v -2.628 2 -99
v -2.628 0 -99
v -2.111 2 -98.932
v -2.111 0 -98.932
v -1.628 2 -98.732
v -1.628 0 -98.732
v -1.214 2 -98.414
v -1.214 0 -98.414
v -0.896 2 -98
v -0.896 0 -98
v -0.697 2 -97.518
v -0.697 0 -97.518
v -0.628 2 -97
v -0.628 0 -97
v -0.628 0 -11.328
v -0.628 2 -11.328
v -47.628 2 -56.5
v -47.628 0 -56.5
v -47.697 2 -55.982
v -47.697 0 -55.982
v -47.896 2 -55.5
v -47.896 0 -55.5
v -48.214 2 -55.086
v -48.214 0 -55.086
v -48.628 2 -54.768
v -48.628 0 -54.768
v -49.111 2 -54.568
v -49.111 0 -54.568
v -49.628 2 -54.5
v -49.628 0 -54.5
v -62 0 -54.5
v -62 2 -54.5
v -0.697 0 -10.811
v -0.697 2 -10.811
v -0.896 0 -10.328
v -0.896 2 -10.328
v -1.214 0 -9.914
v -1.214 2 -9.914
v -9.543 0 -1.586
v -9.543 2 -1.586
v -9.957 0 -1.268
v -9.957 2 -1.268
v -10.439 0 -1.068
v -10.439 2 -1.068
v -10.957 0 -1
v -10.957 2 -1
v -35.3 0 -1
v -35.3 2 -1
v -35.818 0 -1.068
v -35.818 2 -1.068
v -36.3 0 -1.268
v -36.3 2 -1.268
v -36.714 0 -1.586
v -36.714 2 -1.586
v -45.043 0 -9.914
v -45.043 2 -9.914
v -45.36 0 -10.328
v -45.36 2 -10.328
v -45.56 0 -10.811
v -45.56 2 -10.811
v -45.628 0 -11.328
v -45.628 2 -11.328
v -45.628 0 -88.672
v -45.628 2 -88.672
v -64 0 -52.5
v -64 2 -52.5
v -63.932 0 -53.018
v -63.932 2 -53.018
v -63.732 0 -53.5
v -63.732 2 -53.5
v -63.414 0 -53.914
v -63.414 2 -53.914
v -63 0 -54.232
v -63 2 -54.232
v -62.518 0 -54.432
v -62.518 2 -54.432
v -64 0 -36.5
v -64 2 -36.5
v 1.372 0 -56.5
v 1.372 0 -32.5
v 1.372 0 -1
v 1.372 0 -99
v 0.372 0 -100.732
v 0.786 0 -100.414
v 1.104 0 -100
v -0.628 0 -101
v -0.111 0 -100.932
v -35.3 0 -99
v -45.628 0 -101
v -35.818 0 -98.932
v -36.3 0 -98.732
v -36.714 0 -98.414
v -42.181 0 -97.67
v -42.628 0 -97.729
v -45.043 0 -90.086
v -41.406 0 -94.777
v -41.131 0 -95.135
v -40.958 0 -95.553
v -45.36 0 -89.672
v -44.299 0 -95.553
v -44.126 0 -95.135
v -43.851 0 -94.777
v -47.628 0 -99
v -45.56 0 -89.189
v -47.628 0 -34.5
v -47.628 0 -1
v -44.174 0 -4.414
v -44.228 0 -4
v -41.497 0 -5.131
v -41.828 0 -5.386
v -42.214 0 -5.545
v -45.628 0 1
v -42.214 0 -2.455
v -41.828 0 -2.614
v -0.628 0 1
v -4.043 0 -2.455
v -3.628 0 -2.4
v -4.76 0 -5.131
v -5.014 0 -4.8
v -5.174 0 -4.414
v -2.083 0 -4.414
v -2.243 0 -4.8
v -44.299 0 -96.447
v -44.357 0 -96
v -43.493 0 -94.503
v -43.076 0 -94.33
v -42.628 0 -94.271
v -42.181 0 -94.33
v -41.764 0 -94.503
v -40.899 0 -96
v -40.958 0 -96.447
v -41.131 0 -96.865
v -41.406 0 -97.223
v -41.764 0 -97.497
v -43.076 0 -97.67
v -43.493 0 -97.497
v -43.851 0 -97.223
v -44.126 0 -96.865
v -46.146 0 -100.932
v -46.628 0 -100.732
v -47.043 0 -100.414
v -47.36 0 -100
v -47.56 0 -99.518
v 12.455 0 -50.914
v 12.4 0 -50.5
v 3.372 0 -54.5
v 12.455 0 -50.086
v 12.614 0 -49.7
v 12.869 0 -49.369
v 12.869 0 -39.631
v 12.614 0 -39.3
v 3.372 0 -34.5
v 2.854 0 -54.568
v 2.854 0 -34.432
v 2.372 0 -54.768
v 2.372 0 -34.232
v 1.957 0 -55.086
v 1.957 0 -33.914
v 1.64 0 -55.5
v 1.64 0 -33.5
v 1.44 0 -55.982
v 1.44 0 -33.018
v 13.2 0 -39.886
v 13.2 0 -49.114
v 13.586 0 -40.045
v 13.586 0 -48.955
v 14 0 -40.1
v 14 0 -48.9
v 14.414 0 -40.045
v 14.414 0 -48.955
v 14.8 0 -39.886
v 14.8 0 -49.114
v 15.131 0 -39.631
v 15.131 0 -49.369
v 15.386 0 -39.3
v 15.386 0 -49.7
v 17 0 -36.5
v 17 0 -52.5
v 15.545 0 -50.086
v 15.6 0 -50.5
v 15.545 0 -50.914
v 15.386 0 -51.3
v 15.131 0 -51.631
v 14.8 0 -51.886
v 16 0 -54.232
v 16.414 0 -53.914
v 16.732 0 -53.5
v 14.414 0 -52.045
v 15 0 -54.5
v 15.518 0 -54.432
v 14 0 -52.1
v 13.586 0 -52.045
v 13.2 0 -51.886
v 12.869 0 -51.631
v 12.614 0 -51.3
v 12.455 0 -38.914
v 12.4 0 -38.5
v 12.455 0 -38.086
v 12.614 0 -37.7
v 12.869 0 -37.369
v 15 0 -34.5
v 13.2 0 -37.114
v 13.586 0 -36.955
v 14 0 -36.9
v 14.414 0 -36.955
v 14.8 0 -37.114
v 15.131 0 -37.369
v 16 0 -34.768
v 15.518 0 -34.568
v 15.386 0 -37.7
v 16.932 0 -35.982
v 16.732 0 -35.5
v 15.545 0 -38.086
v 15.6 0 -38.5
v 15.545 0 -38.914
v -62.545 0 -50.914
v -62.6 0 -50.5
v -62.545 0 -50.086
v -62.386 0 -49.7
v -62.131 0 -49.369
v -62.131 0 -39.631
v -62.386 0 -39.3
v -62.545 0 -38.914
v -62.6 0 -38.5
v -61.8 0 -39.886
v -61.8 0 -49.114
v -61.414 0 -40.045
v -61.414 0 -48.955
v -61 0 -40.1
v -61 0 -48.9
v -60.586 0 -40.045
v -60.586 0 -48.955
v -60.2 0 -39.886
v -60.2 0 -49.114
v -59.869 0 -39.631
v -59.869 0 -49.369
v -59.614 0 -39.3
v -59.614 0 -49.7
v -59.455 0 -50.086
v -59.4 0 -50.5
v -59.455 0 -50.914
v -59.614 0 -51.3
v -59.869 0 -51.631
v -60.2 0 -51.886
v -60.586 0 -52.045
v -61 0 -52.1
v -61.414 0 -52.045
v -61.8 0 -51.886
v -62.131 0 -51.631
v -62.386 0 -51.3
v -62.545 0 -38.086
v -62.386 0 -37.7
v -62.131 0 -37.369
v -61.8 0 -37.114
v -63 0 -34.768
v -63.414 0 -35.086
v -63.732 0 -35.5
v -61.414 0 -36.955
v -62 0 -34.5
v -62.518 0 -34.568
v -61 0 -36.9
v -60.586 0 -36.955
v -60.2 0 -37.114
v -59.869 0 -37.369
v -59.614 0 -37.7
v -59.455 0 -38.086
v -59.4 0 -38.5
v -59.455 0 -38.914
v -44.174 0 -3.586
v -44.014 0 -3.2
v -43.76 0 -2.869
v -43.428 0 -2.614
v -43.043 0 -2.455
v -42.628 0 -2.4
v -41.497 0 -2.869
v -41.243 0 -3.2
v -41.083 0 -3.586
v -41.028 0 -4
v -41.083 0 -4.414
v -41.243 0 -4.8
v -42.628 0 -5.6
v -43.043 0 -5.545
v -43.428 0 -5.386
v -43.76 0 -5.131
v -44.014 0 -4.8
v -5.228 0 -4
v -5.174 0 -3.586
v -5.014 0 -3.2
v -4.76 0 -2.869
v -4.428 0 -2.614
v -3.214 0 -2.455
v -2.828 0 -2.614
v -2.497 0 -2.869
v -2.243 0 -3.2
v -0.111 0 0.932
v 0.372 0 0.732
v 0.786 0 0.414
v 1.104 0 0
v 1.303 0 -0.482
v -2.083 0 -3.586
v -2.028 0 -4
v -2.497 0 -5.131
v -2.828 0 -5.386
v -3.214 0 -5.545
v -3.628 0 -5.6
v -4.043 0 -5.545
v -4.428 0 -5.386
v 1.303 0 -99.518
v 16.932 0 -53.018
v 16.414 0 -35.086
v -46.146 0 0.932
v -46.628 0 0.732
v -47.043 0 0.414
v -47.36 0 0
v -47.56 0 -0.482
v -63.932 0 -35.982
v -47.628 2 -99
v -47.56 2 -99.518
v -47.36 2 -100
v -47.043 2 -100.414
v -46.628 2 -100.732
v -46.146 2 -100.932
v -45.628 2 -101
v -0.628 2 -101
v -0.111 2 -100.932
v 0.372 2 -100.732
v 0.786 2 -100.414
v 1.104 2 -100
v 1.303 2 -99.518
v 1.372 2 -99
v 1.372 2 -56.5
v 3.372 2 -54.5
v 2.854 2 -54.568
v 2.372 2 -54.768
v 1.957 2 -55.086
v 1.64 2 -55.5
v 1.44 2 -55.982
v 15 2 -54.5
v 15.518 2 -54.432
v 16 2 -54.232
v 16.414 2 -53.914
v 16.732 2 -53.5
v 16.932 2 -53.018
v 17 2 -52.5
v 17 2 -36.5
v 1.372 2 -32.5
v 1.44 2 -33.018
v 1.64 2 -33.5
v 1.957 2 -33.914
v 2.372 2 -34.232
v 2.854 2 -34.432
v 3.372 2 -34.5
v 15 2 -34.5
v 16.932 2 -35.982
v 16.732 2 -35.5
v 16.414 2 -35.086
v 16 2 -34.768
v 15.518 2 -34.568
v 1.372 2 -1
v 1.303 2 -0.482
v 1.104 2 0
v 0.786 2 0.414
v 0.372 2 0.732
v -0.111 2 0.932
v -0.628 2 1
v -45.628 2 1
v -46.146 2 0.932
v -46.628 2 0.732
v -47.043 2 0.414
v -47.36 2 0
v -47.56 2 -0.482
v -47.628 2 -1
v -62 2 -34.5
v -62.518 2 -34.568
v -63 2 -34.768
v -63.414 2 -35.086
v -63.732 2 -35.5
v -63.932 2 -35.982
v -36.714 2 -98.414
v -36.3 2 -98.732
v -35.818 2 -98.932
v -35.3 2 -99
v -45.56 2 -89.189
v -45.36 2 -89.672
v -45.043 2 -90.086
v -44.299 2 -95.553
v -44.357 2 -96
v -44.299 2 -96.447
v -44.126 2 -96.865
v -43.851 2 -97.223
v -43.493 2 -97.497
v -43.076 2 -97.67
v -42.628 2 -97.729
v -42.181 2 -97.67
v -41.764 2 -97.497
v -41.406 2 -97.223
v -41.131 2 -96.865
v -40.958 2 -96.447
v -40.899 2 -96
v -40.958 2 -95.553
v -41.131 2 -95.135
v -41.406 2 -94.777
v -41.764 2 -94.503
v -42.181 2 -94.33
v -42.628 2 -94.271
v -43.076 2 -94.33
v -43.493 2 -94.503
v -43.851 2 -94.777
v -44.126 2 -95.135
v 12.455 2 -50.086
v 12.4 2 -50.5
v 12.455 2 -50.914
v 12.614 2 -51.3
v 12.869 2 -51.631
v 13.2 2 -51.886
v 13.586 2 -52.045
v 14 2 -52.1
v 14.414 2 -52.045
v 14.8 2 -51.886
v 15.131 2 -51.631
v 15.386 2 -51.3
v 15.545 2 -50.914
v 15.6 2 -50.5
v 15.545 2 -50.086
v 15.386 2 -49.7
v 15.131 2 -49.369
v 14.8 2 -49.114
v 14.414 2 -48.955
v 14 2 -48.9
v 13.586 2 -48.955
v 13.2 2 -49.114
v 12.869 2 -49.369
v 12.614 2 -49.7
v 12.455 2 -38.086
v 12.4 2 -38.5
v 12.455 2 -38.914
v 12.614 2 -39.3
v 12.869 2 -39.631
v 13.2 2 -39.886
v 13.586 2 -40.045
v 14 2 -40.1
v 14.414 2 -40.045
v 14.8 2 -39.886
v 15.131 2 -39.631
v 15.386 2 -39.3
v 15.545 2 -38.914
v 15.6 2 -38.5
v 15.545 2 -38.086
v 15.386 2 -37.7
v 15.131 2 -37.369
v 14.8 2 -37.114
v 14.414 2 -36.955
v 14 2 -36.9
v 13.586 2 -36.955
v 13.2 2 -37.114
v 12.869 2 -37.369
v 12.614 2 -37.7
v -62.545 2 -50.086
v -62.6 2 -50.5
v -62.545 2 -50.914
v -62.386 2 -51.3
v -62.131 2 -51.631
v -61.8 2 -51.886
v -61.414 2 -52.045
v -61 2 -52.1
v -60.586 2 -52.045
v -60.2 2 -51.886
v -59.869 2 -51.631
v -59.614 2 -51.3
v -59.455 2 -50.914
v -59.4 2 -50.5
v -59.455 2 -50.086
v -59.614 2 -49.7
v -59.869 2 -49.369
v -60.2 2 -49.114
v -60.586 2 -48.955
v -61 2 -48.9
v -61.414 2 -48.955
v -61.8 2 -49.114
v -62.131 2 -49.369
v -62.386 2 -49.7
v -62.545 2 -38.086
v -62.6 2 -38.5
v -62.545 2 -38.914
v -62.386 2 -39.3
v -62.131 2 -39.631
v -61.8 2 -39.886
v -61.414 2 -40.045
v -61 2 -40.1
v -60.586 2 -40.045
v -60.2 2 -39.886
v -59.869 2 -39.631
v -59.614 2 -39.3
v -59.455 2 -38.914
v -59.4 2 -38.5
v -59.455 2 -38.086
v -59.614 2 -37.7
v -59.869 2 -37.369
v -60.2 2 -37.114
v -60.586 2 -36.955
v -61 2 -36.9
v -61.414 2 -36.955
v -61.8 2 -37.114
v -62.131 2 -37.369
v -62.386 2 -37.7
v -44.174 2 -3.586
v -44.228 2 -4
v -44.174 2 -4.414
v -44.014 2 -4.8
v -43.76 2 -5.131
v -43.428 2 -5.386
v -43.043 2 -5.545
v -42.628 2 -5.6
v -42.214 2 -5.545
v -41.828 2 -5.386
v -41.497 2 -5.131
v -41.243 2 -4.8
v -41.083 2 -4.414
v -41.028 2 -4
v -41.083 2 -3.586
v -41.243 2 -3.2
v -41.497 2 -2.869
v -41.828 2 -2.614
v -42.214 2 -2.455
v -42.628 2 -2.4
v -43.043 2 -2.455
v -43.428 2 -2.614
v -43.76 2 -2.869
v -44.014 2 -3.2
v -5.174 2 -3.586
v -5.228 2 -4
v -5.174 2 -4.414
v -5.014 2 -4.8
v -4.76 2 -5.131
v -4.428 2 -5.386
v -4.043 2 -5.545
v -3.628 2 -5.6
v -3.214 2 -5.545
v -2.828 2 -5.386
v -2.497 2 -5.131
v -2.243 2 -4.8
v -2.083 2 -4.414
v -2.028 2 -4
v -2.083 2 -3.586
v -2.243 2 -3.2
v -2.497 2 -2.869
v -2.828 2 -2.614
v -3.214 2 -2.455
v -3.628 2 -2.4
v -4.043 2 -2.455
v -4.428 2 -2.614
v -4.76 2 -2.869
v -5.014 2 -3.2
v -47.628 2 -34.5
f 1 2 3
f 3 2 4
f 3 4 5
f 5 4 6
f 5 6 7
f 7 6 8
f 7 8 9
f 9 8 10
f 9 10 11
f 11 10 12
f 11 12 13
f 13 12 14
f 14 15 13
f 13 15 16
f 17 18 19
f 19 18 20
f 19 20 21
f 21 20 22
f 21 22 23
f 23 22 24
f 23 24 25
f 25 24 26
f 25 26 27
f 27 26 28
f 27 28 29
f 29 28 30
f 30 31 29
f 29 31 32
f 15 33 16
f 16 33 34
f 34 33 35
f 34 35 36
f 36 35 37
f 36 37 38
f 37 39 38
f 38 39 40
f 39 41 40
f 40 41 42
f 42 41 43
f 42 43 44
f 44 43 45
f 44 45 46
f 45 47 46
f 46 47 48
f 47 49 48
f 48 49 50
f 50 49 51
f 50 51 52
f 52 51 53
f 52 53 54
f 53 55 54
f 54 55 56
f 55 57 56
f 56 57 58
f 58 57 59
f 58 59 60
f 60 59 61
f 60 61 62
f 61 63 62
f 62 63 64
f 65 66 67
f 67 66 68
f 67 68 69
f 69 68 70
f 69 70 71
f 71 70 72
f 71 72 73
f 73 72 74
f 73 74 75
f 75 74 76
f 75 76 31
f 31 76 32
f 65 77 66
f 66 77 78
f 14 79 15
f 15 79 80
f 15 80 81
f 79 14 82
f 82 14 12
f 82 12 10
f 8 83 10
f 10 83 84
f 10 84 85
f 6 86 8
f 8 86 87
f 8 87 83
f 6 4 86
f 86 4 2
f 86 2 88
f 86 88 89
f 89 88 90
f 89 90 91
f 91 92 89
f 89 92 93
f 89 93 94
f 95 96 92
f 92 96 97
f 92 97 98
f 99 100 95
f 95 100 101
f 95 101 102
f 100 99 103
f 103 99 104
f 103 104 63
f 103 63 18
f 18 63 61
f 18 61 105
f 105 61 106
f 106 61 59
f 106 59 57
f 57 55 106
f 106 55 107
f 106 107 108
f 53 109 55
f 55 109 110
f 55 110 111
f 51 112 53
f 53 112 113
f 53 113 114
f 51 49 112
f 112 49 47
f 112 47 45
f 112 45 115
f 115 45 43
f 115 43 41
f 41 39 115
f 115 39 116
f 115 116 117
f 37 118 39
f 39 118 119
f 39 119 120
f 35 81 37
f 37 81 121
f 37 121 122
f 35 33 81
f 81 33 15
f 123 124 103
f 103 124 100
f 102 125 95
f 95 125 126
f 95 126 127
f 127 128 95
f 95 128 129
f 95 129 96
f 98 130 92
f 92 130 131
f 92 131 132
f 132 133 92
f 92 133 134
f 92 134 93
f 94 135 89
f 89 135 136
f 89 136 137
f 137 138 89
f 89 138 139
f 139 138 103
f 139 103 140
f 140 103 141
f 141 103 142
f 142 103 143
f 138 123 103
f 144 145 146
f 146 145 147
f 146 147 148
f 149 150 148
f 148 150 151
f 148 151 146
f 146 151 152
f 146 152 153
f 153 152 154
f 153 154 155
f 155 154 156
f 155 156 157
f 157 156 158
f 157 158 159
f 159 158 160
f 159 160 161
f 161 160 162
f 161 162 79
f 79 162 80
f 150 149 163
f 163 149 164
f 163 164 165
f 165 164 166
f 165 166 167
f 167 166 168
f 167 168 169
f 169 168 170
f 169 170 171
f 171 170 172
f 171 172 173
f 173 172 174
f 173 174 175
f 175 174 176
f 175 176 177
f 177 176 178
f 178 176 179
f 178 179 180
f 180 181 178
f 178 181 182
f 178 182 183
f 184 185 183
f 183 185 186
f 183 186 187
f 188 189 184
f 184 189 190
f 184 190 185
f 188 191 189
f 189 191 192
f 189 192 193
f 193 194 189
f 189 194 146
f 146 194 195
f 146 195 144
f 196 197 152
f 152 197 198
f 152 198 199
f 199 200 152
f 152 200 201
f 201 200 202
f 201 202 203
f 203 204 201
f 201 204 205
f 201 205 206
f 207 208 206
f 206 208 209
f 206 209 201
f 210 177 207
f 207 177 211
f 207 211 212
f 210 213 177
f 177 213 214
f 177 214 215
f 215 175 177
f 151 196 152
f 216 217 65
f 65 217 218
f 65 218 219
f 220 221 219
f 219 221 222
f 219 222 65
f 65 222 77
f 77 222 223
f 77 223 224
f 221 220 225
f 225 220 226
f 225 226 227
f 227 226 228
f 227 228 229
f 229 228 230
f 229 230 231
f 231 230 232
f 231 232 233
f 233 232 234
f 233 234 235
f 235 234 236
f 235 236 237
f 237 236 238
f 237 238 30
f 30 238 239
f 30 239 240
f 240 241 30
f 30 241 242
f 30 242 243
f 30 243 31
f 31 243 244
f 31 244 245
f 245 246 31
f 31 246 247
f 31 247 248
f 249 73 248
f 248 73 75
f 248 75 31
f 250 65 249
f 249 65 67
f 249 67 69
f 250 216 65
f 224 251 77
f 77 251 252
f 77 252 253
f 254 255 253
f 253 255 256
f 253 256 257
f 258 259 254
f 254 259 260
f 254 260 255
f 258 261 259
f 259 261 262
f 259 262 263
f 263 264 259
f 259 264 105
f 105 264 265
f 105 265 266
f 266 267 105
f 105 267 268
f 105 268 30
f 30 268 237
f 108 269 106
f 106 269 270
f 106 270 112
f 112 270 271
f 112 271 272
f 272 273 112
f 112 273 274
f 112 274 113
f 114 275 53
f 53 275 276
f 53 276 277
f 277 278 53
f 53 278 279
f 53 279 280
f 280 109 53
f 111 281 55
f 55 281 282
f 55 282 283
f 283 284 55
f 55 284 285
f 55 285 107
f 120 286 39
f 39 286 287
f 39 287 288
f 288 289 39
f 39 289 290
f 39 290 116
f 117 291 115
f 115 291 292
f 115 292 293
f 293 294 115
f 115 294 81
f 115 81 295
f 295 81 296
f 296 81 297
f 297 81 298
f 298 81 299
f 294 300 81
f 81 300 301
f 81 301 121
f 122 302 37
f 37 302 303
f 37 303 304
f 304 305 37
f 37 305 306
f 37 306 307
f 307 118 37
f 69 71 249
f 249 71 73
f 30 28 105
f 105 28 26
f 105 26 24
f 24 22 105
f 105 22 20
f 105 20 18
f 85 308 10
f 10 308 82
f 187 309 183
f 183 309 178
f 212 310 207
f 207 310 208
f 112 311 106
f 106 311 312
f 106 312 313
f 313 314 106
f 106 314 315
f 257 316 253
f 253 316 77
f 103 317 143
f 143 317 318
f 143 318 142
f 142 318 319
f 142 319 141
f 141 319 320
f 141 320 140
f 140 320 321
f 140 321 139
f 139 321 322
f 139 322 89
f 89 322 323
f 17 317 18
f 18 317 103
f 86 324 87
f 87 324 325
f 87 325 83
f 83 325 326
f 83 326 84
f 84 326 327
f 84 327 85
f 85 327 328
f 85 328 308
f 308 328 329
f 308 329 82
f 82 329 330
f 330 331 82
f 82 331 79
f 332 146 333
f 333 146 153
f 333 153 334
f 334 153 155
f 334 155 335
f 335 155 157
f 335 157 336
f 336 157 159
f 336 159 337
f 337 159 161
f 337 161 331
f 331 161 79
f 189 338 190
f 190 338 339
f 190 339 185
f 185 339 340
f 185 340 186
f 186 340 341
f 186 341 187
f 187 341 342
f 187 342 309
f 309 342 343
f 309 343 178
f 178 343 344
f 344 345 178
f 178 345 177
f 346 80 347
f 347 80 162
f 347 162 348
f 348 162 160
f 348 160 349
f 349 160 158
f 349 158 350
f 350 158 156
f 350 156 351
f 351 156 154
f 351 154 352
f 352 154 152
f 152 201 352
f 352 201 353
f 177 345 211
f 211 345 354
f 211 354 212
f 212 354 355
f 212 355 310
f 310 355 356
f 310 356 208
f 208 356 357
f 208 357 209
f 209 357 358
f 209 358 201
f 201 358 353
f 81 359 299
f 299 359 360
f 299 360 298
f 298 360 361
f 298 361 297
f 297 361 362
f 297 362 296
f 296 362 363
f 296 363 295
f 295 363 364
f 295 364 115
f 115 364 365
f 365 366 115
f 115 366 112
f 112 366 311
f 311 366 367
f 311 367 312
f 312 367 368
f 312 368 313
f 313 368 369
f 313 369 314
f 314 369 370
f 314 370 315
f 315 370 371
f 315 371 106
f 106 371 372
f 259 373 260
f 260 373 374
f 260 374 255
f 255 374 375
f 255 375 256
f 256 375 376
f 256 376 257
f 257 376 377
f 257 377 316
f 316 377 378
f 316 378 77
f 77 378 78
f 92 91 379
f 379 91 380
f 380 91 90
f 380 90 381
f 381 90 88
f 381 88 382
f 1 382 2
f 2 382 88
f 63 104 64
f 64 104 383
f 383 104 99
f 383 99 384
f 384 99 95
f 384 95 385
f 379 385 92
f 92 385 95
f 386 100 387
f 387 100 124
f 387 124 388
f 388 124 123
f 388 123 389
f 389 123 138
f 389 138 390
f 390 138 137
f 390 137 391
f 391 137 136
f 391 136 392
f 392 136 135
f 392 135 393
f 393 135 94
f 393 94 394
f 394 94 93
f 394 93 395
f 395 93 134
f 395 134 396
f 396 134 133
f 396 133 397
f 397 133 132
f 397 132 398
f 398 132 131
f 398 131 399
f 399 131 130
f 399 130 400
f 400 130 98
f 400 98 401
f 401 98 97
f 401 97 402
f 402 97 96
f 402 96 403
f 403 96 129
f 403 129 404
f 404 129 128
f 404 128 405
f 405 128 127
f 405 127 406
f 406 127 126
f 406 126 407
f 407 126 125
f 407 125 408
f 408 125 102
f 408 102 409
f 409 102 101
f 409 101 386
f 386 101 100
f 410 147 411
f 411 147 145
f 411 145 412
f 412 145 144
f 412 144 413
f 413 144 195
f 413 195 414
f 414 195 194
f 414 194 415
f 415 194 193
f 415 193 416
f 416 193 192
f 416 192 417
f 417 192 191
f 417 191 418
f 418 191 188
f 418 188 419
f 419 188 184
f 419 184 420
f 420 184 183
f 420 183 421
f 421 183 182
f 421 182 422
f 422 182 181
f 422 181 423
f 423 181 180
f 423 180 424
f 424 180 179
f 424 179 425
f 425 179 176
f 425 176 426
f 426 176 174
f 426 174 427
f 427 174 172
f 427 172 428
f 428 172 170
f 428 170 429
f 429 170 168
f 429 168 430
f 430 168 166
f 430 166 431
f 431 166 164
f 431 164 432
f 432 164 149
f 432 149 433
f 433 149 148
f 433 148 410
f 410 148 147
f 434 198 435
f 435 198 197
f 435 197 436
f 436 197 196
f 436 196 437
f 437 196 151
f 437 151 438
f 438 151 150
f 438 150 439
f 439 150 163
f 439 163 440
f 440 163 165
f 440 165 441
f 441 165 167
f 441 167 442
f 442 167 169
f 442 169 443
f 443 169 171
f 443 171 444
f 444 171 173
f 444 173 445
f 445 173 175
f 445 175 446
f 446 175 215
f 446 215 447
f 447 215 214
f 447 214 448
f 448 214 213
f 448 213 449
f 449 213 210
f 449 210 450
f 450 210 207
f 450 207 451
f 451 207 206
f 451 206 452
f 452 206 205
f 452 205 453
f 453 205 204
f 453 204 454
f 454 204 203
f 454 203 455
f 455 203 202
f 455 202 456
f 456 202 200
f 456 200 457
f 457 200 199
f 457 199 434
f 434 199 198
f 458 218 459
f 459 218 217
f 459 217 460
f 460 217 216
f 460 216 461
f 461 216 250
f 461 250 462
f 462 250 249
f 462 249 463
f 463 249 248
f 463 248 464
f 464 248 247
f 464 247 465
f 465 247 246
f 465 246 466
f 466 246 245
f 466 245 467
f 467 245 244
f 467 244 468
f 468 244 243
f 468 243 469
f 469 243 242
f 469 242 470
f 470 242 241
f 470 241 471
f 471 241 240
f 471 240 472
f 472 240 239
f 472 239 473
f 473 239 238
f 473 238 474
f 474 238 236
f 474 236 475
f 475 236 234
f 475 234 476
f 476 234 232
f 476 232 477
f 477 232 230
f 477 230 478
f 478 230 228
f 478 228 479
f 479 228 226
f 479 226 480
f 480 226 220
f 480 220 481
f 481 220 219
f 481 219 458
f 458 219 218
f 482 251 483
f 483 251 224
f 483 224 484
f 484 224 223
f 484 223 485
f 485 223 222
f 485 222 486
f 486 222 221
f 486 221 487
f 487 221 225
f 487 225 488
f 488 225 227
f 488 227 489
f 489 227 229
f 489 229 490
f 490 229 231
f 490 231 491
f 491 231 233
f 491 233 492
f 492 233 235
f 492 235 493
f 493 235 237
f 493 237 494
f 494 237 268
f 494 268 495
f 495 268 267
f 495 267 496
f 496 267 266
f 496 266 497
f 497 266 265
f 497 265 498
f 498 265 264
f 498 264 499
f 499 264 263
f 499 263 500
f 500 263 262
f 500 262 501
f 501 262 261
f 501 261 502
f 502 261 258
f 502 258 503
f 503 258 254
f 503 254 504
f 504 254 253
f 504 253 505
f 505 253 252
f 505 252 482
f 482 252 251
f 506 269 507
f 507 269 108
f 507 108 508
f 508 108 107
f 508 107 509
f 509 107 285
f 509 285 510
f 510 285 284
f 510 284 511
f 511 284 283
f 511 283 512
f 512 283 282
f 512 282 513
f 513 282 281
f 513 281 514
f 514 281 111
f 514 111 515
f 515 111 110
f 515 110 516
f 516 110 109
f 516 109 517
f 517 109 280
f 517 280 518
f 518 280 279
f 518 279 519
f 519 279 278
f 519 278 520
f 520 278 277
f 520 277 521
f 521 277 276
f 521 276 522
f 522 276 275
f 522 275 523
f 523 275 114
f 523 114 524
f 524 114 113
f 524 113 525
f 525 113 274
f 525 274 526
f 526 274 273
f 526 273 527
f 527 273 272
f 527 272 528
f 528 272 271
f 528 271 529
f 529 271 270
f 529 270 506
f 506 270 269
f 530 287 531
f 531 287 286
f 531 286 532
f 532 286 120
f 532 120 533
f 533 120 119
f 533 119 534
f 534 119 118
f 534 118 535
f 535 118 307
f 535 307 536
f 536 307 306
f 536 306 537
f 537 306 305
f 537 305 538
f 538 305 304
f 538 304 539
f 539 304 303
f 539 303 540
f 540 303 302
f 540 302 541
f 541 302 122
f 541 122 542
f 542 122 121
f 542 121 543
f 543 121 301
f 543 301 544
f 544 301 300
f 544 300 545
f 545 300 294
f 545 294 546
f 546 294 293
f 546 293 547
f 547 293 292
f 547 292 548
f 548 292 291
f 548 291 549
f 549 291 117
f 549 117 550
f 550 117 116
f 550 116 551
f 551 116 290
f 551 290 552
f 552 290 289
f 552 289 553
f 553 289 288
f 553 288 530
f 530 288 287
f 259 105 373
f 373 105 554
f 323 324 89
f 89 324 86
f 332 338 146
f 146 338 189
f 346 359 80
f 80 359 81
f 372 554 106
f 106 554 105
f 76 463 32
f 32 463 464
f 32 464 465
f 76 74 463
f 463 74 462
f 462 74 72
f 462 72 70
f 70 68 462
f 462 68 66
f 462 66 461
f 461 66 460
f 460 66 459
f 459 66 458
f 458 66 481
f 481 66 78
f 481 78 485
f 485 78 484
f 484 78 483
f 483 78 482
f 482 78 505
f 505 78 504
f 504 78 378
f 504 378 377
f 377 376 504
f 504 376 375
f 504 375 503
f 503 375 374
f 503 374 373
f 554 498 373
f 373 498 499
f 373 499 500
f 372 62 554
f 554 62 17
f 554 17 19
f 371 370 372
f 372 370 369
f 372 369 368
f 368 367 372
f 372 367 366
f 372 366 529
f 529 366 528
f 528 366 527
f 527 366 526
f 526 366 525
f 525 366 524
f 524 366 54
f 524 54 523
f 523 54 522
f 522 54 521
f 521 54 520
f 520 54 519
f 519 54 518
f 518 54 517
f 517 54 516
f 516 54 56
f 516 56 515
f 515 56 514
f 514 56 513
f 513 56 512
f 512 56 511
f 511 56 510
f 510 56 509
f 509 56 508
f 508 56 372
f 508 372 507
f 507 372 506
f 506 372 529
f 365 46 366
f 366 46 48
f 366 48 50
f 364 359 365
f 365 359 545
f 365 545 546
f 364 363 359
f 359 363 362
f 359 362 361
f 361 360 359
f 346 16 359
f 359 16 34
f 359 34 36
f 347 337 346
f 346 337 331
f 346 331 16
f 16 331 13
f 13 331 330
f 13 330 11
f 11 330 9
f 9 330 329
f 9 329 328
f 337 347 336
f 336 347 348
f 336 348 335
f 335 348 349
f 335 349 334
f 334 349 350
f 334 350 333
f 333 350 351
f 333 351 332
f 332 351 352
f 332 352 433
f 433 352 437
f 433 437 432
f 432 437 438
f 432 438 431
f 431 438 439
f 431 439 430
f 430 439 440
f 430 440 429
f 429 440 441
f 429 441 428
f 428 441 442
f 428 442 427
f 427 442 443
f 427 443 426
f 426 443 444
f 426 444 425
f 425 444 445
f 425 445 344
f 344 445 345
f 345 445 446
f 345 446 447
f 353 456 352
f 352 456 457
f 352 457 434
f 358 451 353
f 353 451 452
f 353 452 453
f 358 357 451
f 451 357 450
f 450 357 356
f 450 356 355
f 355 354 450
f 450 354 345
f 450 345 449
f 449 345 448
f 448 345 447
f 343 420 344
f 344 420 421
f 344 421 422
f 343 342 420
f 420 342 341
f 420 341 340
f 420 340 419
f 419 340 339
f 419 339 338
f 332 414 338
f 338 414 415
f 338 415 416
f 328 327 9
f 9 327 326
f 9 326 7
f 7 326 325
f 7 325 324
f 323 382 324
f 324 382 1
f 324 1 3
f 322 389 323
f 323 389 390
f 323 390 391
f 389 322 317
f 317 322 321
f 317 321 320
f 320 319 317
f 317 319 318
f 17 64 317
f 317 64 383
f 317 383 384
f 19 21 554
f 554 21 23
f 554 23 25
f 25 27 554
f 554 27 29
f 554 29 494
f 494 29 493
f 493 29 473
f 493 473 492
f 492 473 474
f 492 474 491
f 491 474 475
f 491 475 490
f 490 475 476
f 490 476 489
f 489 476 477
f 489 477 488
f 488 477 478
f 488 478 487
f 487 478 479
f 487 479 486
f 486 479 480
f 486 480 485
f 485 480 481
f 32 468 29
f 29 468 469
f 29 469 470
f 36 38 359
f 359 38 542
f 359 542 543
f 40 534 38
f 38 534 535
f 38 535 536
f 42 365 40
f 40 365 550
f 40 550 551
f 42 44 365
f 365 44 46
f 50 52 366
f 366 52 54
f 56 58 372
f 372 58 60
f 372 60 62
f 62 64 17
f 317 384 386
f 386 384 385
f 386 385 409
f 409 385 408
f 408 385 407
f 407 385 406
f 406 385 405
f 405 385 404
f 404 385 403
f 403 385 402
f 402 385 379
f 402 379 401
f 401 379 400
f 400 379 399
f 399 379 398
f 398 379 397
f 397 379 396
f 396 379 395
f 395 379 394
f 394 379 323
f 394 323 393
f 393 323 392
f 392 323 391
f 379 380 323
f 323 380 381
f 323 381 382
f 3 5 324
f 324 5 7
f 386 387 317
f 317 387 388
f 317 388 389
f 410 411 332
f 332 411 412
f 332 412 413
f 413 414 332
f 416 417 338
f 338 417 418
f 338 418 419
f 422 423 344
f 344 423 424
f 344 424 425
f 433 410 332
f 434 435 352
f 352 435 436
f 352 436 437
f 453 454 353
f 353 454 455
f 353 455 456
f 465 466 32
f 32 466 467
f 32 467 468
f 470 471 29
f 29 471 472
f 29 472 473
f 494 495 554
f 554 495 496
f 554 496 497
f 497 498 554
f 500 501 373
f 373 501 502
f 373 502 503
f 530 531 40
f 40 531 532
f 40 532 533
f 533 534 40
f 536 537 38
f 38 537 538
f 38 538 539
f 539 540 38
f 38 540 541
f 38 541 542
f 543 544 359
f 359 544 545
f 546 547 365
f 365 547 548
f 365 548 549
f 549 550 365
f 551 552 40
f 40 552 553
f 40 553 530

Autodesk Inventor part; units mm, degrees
ref_plane "YZ Plane" through (0, 0, 0) normal (1, 0, 0) x (0, 1, 0)
ref_plane "XZ Plane" through (0, 0, 0) normal (0, 1, 0) x (-1, 0, 0)
ref_plane "XY Plane" through (0, 0, 0) normal (0, 0, 1) x (1, 0, 0)
sketch "Sketch1" plane through (0, 0, 0) normal (0, 1, 0) x (-1, 0, 0)
  line L0 (-0.3716, 0) -> (46.6284, 0) construction
  line L1 (46.6284, 0) -> (46.6284, -99) construction
  line L2 (46.6284, -100) -> (-0.3716, -100) construction
  line L3 (-0.3716, -100) -> (-0.3716, -1) construction
  circle A0 centre (3.6284, -4) radius 1.6 construction
  circle A1 centre (42.6284, -4) radius 1.6 construction
  circle A2 centre (42.6284, -96) radius 1.729 construction
  line L4 (23.1284, 0) -> (23.1284, -100) construction
  line L5 (23.1284, -13) -> (18.1284, -13) construction
  line L6 (18.1284, -13) -> (0.1284, -13) construction
  line L7 (23.1284, -13) -> (46.1284, -13) construction
  line L8 (45.6284, -10.5) -> (45.6284, -89.5)
  line L9 (10.1284, -1) -> (36.1284, -1)
  line L10 (0.6284, -99) -> (36.1284, -99)
  line L11 (0.6284, -10.5) -> (0.6284, -99)
  line L12 (36.9206, -1) -> (49.2353, -1) construction
  line L13 (45.6284, -1) -> (36.1284, -1) construction
  line L14 (36.1284, -1) -> (45.6284, -10.5)
  line L15 (36.1284, -99) -> (45.6284, -89.5)
  line L16 (36.1284, -99) -> (49.5635, -99) construction
  line L17 (0.6284, -1) -> (10.1284, -1) construction
  line L18 (10.1284, -1) -> (0.6284, -10.5)
  circle A3 centre (3.6284, -4) radius 1.6
  circle A4 centre (42.6284, -4) radius 1.6
  circle A5 centre (42.6284, -96) radius 1.729
  circle A6 centre (61, -38.5) radius 1.6
  circle A7 centre (61, -50.5) radius 1.6
  line L19 (47.6284, -34.5) -> (64, -34.5)
  line L20 (64, -34.5) -> (64, -54.5)
  line L21 (64, -54.5) -> (47.6284, -54.5)
  circle A8 centre (-14, -38.5) radius 1.6
  circle A9 centre (-14, -50.5) radius 1.6
  line L22 (-1.3716, -34.5) -> (-17, -34.5)
  line L23 (-17, -34.5) -> (-17, -54.5)
  line L24 (-17, -54.5) -> (-1.3716, -54.5)
  line L25 (47.6284, -101) -> (47.6284, -54.5)
  line L26 (47.6284, -34.5) -> (47.6284, 1)
  line L27 (-1.3716, -101) -> (-1.3716, -54.5)
  line L28 (-1.3716, -34.5) -> (-1.3716, 1)
  line L29 (47.6284, 1) -> (-1.3716, 1)
  line L30 (47.6284, -101) -> (-1.3716, -101)
  dimension "d0" = 47
  dimension "d1" = 100
  dimension "d2" = 3.2
  dimension "d3" = 4
  dimension "d4" = 4
  dimension "d5" = 4
  dimension "d6" = 43
  dimension "d7" = 3.2
  dimension "d8" = 43
  dimension "d9" = 96
  dimension "d10" = 23.5
  dimension "d11" = 5
  dimension "d12" = 13
  dimension "d13" = 18
  dimension "d15" = 23
  dimension "d24" = 1
  dimension "d33" = 8.7079
  dimension "d34" = 9.5
  dimension "d35" = 45
  dimension "d36" = 45
  dimension "d37" = 9.5
  dimension "d38" = 45
  dimension "d39" = 3.2
  dimension "d42" = 3.2
  dimension "d43" = 12
  dimension "d44" = 4
  dimension "d45" = 3
  dimension "d46" = 4
  dimension "d47" = 3.2
  dimension "d49" = 3.2
  dimension "d50" = 12
  dimension "d51" = 3
extrude "Extrusion1" add sketch "Sketch1" along normal blind 2
fillet "Fillet1" radius 2 18 edges at (-45.6284, 1, -89.5) (-36.1284, 1, -99) (-64, 1, -34.5) (-47.6284, 1, 1) (1.3716, 1, 1) (17, 1, -34.5) (1.3716, 1, -34.5) (17, 1, -54.5) (1.3716, 1, -54.5) (1.3716, 1, -101) (-47.6284, 1, -101) (-64, 1, -54.5) (-45.6284, 1, -10.5) (-36.1284, 1, -1) (-10.1284, 1, -1) (-0.6284, 1, -10.5) (-47.6284, 1, -54.5) (-0.6284, 1, -99)
properties part number "PCB Holder"
